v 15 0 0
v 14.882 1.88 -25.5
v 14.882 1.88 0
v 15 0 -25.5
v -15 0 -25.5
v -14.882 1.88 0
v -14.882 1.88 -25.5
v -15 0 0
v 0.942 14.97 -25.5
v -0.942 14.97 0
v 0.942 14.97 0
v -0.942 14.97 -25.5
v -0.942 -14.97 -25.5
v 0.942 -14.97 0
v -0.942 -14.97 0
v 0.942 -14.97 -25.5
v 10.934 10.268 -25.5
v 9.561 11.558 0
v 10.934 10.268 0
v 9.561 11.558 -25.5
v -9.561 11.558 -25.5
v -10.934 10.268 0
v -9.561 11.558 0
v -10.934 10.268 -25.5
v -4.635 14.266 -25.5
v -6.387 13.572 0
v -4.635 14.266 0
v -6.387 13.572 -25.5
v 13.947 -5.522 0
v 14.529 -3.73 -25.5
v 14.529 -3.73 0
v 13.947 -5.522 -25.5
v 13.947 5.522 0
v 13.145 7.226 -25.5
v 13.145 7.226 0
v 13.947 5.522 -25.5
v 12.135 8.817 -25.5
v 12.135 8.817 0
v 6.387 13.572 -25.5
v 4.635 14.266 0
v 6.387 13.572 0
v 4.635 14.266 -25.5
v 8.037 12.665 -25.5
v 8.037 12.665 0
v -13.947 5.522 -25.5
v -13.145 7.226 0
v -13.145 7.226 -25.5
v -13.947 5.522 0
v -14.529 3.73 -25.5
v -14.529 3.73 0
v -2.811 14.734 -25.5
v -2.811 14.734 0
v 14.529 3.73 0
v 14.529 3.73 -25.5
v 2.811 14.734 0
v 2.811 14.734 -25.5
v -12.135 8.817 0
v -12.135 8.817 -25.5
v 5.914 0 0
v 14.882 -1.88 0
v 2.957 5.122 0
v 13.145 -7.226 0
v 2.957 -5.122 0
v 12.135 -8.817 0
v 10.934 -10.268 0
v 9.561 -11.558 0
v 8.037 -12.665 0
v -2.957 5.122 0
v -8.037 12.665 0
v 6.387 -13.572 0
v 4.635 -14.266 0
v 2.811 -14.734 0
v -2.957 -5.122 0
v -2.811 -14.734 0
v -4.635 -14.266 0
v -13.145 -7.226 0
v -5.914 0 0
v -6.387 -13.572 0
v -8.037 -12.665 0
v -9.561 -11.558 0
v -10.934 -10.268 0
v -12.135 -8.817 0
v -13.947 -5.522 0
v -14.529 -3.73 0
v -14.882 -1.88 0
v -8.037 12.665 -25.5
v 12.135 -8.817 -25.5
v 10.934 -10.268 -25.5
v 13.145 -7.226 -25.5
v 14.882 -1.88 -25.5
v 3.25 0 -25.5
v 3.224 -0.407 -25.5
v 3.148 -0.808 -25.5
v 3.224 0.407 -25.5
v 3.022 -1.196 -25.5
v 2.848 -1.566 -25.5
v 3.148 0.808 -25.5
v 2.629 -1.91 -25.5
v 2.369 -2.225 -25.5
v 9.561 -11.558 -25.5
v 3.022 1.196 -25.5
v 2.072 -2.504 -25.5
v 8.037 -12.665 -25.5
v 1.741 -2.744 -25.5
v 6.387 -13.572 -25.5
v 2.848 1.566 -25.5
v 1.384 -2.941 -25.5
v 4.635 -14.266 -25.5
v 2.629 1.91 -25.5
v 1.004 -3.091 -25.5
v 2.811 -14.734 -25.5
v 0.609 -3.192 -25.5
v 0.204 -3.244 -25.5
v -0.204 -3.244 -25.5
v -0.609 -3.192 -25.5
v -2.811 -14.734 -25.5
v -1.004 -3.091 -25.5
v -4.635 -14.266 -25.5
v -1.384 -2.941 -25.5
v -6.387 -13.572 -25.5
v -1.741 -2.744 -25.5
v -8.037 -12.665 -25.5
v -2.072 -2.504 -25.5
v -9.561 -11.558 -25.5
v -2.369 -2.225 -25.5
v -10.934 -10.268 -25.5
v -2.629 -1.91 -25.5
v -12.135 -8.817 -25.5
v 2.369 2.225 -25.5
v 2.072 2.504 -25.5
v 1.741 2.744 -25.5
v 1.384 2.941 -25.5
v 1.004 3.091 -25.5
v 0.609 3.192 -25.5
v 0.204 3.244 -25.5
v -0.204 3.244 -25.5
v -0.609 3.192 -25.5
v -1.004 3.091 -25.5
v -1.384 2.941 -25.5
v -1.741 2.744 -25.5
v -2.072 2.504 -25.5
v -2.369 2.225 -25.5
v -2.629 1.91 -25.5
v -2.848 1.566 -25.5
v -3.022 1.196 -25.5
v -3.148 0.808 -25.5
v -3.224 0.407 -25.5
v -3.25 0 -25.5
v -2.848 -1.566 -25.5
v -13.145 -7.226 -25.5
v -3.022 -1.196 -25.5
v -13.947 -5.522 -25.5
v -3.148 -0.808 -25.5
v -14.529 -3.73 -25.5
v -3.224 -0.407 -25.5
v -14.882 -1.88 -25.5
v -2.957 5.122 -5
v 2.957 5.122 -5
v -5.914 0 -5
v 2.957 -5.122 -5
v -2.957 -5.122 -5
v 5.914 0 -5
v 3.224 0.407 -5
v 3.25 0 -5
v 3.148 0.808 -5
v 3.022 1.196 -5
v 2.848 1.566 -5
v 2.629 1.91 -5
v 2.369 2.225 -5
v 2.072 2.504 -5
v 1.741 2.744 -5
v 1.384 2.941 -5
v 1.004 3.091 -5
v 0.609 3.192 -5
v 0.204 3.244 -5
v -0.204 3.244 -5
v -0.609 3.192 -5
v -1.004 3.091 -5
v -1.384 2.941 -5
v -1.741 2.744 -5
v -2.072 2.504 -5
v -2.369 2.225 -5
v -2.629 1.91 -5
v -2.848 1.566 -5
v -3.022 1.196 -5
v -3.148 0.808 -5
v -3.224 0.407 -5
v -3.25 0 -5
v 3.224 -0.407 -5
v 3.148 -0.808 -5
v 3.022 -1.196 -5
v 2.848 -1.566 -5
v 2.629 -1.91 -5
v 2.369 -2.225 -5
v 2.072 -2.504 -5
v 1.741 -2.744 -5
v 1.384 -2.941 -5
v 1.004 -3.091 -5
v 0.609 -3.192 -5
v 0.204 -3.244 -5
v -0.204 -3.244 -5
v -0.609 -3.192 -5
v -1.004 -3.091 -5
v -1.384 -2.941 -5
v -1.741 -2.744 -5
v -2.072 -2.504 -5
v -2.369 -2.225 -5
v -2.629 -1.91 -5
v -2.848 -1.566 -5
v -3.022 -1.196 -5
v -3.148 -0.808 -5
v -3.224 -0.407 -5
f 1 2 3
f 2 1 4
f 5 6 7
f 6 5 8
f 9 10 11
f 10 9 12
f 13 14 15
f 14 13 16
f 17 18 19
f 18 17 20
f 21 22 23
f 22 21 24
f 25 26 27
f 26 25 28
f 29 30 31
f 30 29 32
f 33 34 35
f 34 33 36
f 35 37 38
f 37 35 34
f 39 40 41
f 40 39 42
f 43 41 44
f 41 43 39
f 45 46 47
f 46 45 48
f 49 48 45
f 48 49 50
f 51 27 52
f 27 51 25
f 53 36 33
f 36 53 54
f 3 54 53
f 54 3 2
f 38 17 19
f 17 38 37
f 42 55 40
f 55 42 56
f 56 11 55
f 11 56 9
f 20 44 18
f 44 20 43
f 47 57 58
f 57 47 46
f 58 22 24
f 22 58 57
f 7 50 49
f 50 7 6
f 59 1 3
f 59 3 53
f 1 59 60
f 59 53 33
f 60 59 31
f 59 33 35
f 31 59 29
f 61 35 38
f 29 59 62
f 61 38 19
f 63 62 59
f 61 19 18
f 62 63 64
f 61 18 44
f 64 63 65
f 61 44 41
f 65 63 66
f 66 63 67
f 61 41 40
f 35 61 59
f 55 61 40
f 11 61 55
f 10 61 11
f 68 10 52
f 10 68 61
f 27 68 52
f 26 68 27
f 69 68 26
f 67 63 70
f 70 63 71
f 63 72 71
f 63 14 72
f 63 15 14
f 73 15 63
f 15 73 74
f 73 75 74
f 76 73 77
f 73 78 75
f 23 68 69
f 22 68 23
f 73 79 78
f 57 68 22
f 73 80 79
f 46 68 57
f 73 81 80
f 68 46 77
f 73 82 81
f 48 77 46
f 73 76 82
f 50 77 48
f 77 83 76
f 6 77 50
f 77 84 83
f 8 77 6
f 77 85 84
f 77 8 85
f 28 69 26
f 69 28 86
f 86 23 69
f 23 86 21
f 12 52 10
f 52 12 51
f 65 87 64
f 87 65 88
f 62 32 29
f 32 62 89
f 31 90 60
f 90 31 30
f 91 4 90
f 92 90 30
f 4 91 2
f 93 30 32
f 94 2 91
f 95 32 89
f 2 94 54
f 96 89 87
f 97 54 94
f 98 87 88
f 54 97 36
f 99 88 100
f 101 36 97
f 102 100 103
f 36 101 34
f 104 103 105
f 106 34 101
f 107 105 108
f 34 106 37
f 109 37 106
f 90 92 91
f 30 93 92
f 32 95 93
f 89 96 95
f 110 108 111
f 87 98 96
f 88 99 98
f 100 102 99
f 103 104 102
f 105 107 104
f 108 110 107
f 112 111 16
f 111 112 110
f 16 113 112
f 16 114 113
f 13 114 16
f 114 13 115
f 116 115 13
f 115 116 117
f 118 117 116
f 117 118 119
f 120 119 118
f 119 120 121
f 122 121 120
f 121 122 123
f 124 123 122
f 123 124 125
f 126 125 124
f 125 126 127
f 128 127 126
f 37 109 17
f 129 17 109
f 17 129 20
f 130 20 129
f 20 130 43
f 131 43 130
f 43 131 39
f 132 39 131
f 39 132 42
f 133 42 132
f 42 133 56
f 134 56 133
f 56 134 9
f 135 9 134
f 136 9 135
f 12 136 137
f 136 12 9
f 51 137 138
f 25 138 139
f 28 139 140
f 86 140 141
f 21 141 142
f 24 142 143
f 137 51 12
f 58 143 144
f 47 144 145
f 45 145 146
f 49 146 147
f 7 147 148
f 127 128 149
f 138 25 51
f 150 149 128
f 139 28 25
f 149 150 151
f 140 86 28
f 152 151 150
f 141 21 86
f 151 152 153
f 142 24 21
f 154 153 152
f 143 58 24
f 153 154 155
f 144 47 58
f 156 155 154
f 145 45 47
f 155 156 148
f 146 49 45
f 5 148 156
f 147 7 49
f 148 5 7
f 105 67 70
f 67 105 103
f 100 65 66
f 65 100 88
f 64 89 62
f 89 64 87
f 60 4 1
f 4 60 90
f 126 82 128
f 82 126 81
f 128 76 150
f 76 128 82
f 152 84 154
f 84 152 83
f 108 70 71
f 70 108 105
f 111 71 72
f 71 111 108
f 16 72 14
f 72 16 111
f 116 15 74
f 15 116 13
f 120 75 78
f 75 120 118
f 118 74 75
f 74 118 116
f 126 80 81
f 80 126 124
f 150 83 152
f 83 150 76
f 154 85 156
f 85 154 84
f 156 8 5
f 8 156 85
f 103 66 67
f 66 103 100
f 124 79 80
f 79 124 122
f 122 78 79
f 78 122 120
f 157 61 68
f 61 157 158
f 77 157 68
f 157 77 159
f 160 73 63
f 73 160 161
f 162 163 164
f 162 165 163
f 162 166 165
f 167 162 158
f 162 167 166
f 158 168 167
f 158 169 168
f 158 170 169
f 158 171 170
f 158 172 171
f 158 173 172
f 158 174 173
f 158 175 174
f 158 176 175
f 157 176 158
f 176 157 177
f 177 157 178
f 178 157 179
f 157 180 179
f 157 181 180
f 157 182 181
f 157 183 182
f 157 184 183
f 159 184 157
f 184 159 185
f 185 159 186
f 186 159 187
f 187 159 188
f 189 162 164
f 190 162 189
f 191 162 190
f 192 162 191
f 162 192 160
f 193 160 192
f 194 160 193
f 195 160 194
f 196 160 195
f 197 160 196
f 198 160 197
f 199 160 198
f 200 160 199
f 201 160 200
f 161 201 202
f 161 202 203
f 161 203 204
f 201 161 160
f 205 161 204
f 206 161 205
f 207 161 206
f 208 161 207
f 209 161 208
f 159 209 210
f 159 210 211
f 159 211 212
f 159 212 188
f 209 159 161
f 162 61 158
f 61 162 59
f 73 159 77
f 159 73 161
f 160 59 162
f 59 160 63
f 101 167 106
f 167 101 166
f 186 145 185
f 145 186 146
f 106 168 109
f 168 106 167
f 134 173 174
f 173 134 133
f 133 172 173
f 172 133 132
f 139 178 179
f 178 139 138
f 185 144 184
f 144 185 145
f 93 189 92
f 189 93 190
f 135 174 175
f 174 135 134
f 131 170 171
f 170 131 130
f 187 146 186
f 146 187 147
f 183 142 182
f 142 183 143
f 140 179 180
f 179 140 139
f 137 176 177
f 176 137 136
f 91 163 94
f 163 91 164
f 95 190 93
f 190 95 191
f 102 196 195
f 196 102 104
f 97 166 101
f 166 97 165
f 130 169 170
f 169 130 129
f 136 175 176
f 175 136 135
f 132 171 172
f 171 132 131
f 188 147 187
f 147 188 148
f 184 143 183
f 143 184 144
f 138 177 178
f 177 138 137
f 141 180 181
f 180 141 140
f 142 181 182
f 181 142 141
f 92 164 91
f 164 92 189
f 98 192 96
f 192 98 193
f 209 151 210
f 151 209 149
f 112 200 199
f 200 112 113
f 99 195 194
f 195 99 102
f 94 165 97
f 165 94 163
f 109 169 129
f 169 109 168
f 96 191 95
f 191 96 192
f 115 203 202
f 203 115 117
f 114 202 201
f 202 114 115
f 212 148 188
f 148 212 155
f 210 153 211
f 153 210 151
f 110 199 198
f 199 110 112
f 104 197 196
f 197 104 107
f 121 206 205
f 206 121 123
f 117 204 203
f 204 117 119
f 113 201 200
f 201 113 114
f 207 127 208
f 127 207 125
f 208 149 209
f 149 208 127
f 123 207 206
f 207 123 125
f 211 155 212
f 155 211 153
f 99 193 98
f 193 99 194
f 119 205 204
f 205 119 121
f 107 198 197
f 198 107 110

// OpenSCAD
$fn = 50;

difference() {
	union() {
		translate(v = [0, 0, -25.5]) {
			cylinder(h = 25.5, r = 15.0);
		}
		#translate(v = [0, 0, -27.0]) {
			cylinder(h = 27, r = 2.875);
		}
	}
	union() {
		translate(v = [0, 0, 0]) {
			rotate(a = [0, 0, 0]) {
				difference() {
					union() {
						translate(v = [0, 0, -5]) {
							linear_extrude(height = 5) {
								polygon(points = [[5.914249999999999, 0.0], [2.957125, 5.1218907443321156], [-2.9571249999999982, 5.1218907443321156], [-5.914249999999999, 7.242867331857232e-16], [-2.9571250000000022, -5.121890744332115], [2.9571249999999956, -5.121890744332118]]);
							}
						}
					}
					union();
				}
			}
		}
		#translate(v = [0, 0, -100.0]) {
			cylinder(h = 200, r = 3.25);
		}
	}
}
